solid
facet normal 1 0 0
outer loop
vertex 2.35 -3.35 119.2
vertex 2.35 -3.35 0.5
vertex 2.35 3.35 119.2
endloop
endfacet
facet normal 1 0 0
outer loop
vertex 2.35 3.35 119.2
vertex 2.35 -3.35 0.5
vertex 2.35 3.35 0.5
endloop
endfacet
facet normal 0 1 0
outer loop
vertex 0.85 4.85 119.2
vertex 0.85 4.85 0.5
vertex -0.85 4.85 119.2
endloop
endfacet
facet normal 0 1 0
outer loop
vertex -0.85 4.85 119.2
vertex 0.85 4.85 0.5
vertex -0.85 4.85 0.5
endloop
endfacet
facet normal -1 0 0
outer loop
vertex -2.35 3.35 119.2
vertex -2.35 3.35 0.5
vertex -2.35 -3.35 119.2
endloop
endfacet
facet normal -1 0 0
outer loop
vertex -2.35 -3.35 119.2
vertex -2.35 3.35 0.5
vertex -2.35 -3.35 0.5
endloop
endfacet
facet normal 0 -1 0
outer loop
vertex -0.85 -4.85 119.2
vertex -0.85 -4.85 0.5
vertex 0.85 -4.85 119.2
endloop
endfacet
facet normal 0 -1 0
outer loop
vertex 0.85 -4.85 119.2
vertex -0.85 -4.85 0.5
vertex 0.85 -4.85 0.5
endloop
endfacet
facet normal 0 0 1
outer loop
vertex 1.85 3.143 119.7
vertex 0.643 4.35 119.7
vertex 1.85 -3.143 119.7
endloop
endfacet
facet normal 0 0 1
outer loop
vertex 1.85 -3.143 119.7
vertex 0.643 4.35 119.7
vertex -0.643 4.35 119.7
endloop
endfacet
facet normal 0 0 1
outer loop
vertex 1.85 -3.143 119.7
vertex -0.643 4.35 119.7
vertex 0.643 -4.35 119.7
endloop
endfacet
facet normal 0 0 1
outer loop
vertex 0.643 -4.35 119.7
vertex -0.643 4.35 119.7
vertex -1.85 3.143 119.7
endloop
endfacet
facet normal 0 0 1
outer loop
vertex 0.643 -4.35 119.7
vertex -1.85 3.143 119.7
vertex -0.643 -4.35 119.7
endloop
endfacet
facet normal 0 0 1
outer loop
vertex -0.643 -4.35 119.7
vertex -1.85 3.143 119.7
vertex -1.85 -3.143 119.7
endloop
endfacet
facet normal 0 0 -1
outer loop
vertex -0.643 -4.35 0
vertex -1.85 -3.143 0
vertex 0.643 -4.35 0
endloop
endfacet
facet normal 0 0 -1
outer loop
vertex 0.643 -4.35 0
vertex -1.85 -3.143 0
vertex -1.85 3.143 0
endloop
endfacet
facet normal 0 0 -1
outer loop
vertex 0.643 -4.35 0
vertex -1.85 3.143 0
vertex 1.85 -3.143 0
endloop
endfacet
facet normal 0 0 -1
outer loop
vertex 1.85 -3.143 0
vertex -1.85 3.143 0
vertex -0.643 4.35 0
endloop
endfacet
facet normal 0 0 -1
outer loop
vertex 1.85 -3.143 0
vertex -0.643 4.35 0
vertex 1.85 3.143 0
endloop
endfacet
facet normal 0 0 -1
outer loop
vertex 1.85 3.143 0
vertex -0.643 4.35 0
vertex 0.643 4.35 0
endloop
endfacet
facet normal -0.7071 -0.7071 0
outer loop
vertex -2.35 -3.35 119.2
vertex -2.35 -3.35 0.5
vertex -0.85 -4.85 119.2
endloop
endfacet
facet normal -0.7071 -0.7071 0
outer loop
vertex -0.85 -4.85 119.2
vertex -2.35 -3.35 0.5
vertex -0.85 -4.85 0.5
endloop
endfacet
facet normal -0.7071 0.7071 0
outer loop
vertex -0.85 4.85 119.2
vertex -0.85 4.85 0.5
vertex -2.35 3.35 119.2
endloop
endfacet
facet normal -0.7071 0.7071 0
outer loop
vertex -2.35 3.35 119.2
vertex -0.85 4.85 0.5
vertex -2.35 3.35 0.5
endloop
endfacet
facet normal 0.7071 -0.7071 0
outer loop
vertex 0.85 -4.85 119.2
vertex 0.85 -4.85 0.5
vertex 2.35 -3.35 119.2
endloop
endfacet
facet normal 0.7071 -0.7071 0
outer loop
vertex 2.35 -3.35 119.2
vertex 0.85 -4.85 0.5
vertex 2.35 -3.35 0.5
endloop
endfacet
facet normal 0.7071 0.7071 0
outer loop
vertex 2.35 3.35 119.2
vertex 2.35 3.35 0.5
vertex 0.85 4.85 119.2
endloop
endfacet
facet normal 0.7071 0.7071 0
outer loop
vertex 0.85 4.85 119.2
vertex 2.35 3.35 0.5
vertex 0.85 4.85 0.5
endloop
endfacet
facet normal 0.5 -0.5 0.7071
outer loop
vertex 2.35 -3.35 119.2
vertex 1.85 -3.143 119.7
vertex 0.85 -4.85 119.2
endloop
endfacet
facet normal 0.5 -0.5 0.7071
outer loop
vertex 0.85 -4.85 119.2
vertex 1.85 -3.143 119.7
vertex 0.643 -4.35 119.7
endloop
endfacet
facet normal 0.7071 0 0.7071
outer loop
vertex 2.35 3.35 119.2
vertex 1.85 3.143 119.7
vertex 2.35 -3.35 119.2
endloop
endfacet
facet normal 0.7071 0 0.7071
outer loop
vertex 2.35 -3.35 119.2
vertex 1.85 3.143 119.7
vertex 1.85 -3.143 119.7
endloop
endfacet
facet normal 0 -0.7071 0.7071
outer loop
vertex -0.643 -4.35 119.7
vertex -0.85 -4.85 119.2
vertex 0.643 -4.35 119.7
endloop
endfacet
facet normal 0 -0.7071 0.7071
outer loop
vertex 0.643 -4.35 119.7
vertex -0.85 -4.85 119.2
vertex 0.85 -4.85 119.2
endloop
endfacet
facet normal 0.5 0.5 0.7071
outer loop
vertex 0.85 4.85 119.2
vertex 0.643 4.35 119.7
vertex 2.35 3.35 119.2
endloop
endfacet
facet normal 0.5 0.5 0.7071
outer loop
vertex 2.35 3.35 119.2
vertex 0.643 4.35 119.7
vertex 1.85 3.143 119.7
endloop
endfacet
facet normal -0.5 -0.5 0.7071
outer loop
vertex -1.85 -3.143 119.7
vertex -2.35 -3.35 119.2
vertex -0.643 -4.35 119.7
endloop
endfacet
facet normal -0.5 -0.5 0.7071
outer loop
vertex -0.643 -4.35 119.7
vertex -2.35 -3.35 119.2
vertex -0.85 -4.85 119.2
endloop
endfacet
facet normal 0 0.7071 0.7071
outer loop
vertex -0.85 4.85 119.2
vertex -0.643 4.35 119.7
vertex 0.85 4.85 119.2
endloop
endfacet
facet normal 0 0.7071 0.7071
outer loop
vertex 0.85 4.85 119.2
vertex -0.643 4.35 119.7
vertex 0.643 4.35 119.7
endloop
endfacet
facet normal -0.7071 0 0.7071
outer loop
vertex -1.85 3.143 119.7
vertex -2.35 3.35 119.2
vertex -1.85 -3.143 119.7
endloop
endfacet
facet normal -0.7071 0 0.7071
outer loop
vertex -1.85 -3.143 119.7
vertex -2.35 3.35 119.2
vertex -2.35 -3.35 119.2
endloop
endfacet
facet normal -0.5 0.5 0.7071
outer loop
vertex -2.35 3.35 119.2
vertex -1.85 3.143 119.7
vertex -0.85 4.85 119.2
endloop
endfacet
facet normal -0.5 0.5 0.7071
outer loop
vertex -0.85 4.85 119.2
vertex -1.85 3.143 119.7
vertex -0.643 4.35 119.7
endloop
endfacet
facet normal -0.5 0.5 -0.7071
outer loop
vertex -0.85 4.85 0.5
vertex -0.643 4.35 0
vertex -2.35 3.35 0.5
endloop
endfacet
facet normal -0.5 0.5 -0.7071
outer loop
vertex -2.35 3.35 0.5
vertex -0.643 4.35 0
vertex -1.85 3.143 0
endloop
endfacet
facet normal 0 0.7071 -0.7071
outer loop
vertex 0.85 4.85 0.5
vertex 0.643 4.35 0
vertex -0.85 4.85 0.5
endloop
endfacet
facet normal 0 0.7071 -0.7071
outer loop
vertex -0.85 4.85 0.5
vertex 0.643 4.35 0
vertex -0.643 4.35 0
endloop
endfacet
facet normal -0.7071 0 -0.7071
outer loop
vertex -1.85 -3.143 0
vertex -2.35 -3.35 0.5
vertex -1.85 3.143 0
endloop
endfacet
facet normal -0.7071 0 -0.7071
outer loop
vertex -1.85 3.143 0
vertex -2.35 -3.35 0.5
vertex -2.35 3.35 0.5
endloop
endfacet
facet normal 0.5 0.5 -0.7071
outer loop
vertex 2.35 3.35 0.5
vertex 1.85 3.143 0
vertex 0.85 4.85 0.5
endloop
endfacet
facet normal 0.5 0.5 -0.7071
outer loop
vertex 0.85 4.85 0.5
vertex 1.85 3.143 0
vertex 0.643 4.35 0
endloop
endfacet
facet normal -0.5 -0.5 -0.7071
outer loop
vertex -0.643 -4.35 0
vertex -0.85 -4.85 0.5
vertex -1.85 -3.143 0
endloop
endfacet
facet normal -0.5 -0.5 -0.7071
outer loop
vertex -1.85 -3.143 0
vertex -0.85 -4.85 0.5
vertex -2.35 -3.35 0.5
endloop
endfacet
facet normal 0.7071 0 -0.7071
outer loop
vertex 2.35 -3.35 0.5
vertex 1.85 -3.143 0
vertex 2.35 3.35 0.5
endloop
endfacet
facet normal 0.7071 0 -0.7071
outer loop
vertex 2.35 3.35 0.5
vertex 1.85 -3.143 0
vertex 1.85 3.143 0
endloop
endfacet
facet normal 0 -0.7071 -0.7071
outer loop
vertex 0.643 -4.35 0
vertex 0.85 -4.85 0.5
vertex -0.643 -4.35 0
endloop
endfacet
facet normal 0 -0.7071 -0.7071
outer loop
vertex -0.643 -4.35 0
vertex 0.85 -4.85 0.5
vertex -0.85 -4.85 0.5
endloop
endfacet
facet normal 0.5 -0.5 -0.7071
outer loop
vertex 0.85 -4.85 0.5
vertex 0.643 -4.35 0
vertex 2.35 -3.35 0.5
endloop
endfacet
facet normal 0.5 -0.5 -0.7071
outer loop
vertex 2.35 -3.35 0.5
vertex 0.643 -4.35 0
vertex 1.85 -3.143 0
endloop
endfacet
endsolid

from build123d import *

# Parameters (mm, degrees)
ESBO_O2_W                = 4.7
ESBO_O2_H                = 9.7
RESSALTO_EXTRUS_O1_DEPTH = 119.7
CHANFRO1_SIZE            = 1.5
CHANFRO2_SIZE            = 0.5


with BuildPart() as part:
    # Esboço2 → Ressalto-extrusão1 (new body)
    with BuildSketch(Plane.XY):
        Rectangle(ESBO_O2_W, ESBO_O2_H)
    extrude(amount=RESSALTO_EXTRUS_O1_DEPTH)

    # Chanfro1
    chanfro1_edges = [part.edges().sort_by_distance(p)[0] for p in [
        (2.35, -4.85, 59.85),
        (-2.35, -4.85, 59.85),
        (-2.35, 4.85, 59.85),
        (2.35, 4.85, 59.85),
    ]]
    chamfer(chanfro1_edges, length=CHANFRO1_SIZE)

    # Chanfro2
    chanfro2_edges = [part.edges().sort_by_distance(p)[0] for p in [
        (0, -4.85, 0),
        (0, -4.85, 119.7),
        (2.35, 0, 0),
        (-2.35, 0, 0),
        (0, 4.85, 0),
        (1.6, 4.1, 0),
        (1.6, -4.1, 0),
        (-1.6, 4.1, 0),
        (-1.6, -4.1, 0),
        (-2.35, 0, 119.7),
        (2.35, 0, 119.7),
        (0, 4.85, 119.7),
        (1.6, 4.1, 119.7),
        (1.6, -4.1, 119.7),
        (-1.6, 4.1, 119.7),
        (-1.6, -4.1, 119.7),
    ]]
    chamfer(chanfro2_edges, length=CHANFRO2_SIZE)


solid = part.part
